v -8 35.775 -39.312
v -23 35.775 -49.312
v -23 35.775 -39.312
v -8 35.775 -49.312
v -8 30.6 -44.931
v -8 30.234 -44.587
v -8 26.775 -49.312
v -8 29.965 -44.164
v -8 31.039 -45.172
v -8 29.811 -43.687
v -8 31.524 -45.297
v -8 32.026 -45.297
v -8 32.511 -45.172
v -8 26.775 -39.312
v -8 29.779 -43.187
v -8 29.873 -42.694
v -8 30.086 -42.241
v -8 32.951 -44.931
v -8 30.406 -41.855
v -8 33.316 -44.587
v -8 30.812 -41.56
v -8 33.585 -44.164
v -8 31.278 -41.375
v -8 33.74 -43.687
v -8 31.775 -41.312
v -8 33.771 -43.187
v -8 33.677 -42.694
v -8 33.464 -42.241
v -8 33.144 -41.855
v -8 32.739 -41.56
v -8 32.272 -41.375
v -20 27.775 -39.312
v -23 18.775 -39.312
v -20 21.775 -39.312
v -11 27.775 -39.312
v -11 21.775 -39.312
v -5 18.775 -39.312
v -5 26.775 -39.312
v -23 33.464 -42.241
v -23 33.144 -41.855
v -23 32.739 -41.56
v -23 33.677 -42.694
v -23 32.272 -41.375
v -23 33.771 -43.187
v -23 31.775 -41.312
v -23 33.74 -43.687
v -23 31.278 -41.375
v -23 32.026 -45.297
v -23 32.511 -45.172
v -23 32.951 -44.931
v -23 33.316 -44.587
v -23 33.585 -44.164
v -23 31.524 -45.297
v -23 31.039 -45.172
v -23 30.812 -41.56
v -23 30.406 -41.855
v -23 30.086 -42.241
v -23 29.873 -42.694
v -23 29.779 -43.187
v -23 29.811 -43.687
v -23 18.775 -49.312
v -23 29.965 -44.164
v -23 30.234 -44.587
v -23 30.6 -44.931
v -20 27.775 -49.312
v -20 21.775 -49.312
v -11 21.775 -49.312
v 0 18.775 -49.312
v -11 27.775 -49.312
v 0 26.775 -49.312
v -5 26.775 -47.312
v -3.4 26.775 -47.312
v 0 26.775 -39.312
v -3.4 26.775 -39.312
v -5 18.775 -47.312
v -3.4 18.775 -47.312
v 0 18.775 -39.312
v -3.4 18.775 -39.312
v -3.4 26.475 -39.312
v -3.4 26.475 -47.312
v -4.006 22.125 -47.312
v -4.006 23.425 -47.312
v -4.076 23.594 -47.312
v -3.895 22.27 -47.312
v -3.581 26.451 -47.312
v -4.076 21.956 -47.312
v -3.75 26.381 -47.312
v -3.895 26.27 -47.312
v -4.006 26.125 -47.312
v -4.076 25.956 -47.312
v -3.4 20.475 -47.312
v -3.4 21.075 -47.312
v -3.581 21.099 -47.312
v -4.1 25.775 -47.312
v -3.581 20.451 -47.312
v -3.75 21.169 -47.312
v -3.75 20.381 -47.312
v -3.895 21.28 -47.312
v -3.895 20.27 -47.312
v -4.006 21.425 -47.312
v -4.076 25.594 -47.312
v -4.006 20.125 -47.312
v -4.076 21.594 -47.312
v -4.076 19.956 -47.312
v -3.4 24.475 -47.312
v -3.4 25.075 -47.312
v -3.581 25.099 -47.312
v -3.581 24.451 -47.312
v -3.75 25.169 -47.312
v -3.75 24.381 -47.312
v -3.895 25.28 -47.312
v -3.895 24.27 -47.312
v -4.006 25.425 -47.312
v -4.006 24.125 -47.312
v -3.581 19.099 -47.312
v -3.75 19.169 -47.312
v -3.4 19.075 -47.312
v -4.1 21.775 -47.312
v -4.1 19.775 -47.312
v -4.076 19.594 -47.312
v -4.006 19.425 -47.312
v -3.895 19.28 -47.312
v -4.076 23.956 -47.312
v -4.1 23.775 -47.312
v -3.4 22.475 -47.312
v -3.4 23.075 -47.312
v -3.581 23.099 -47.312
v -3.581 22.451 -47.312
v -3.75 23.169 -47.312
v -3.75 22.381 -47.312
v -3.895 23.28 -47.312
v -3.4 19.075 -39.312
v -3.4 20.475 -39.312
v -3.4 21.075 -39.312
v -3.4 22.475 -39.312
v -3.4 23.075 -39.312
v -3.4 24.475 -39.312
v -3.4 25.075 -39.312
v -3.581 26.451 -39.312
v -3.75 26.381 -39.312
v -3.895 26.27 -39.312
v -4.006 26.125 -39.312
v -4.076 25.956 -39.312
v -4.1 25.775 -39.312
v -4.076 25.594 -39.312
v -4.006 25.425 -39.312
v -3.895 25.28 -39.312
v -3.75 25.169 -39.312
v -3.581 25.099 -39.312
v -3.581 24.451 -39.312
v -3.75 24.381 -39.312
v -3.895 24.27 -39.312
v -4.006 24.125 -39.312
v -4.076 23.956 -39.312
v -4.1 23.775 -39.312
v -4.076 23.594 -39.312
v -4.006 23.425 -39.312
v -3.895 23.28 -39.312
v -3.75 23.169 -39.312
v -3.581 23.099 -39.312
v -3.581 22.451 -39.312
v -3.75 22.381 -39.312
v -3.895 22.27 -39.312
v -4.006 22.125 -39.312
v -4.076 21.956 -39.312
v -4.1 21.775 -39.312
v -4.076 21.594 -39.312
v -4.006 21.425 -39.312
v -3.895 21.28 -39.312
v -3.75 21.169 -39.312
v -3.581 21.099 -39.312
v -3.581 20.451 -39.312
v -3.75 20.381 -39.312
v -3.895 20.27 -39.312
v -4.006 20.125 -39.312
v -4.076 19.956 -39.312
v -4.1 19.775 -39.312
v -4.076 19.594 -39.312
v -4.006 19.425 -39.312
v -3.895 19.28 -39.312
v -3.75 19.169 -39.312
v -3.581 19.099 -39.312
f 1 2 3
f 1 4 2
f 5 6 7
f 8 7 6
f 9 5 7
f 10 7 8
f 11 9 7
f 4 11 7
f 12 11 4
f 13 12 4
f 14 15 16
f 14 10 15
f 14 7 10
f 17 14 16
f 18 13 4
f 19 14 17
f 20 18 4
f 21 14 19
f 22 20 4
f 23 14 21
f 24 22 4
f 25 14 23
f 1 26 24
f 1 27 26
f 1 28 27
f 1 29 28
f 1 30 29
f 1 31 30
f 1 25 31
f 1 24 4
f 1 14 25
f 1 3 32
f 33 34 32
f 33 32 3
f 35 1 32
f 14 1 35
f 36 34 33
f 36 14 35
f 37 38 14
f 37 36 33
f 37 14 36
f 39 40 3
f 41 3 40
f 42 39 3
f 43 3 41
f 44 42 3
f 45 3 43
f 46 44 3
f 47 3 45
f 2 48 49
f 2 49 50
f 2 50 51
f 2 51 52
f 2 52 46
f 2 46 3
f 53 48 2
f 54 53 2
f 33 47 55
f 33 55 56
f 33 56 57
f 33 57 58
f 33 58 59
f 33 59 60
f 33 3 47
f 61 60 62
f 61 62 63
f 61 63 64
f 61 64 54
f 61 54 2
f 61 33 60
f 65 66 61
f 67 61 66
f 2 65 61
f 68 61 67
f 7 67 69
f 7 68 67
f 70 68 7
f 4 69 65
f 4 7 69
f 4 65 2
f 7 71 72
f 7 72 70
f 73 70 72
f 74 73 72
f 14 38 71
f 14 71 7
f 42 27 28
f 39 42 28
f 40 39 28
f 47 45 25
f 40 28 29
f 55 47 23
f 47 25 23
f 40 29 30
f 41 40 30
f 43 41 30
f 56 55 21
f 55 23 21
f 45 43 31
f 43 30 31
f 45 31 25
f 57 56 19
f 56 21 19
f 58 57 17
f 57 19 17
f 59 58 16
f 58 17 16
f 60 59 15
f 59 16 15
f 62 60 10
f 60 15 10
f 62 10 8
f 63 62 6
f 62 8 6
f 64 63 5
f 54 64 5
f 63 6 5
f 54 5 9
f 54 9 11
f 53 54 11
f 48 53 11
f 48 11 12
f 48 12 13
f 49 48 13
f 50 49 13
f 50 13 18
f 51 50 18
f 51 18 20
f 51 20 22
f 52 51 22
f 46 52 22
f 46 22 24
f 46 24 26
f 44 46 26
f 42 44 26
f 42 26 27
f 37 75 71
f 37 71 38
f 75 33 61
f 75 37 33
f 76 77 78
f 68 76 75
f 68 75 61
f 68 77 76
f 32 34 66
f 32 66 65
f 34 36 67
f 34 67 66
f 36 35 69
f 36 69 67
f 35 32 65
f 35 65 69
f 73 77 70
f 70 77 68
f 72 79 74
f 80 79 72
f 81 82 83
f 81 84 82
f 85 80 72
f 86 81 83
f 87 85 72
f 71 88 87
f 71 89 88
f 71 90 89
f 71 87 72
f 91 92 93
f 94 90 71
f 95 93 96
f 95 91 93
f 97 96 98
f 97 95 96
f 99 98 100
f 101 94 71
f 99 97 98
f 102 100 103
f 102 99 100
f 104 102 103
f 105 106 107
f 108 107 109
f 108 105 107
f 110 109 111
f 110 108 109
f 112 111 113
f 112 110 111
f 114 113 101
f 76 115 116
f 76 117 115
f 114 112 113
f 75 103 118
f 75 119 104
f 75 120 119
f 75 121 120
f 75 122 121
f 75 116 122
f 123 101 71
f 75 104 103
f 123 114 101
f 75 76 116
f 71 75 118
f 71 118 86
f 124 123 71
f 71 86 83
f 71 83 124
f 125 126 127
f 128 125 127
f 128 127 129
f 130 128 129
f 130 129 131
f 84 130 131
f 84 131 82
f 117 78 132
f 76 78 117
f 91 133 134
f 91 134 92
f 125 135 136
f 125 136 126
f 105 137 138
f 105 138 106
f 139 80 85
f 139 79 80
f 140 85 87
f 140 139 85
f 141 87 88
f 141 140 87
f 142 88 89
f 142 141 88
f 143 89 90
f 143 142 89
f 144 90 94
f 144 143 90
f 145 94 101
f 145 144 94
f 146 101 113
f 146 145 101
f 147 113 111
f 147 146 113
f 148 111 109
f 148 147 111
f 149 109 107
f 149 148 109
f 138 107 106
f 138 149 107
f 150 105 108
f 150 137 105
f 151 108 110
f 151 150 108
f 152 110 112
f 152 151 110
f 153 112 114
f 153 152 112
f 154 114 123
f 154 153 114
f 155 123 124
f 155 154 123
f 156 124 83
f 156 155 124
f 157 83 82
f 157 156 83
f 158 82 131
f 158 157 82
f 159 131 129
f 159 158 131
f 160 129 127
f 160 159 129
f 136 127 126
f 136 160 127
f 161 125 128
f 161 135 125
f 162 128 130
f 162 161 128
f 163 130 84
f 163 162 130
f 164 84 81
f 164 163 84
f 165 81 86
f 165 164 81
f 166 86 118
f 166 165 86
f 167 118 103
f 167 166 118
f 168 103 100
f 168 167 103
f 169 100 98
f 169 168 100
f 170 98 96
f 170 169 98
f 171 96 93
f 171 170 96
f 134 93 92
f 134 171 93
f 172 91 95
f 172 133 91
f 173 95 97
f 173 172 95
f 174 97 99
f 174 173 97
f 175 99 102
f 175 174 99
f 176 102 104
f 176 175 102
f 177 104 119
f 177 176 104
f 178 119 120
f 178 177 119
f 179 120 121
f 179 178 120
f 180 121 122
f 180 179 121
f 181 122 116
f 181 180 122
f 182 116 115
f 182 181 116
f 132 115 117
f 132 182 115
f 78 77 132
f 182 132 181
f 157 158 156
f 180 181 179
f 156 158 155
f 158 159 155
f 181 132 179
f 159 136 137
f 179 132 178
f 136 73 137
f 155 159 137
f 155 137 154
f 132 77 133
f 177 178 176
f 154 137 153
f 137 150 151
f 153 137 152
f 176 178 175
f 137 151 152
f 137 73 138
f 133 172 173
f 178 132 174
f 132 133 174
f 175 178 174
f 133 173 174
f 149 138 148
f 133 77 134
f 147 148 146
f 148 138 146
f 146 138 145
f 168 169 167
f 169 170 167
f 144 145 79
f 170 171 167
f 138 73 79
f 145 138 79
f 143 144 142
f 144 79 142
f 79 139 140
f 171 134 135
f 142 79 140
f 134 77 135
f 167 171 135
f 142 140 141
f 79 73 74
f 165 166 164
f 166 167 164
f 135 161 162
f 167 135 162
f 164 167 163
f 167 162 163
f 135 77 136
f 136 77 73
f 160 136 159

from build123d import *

# Parameters (mm, degrees)
SKETCH_W        = 10
SKETCH_H        = 17
PAD_DEPTH       = 23
SKETCH001_W     = 9
SKETCH001_H     = 8
POCKET_DEPTH    = 20
SKETCH002_R     = 2
POCKET001_DEPTH = 30
SKETCH003_W     = 8
SKETCH003_H     = 1.6
POCKET002_DEPTH = 8
SKETCH004_R     = 0.7
PAD001_DEPTH    = 8
SKETCH005_W     = 6
SKETCH005_H     = 9
POCKET003_DEPTH = 10


with BuildPart() as part:
    # Sketch → Pad (new body)
    with BuildSketch(Plane.ZY):
        with Locations((-44.312478, 27.275098)):
            Rectangle(SKETCH_W, SKETCH_H)
    extrude(amount=PAD_DEPTH)

    # Sketch001 → Pocket (cut)
    with BuildSketch(Plane(origin=(0, 0, -39.312478), x_dir=(0, 1, 0), z_dir=(0, 0, 1))):
        with Locations((31.275098, 4)):
            Rectangle(SKETCH001_W, SKETCH001_H)
    extrude(amount=-POCKET_DEPTH, mode=Mode.SUBTRACT)

    # Sketch002 → Pocket001 (cut)
    with BuildSketch(Plane(origin=(-8, 0, 0), x_dir=(0, 0, 1), z_dir=(1, 0, 0))):
        with Locations((-43.312478, -31.775098)):
            Circle(SKETCH002_R)
    extrude(amount=-POCKET001_DEPTH, mode=Mode.SUBTRACT)

    # Sketch003 → Pocket002 (cut)
    with BuildSketch(Plane(origin=(0, 18.775098, 0), x_dir=(0, 0, 1), z_dir=(0, -1, 0))):
        with Locations((-43.312478, 4.2)):
            Rectangle(SKETCH003_W, SKETCH003_H)
    extrude(amount=-POCKET002_DEPTH, mode=Mode.SUBTRACT)

    # Sketch004 → Pad001 (new body)
    with BuildSketch(Plane(origin=(0, 0, -39.312478), x_dir=(0, 1, 0), z_dir=(0, 0, 1))):
        with Locations((19.775098, 3.4)):
            Circle(SKETCH004_R)
        with Locations((21.775098, 3.4)):
            Circle(SKETCH004_R)
        with Locations((23.775098, 3.4)):
            Circle(SKETCH004_R)
        with Locations((25.775098, 3.4)):
            Circle(SKETCH004_R)
    extrude(amount=-PAD001_DEPTH)

    # Sketch005 → Pocket003 (cut)
    with BuildSketch(Plane(origin=(0, 0, -39.312478), x_dir=(0, 1, 0), z_dir=(0, 0, 1))):
        with Locations((24.775098, 15.5)):
            Rectangle(SKETCH005_W, SKETCH005_H)
    extrude(amount=-POCKET003_DEPTH, mode=Mode.SUBTRACT)


solid = part.part
